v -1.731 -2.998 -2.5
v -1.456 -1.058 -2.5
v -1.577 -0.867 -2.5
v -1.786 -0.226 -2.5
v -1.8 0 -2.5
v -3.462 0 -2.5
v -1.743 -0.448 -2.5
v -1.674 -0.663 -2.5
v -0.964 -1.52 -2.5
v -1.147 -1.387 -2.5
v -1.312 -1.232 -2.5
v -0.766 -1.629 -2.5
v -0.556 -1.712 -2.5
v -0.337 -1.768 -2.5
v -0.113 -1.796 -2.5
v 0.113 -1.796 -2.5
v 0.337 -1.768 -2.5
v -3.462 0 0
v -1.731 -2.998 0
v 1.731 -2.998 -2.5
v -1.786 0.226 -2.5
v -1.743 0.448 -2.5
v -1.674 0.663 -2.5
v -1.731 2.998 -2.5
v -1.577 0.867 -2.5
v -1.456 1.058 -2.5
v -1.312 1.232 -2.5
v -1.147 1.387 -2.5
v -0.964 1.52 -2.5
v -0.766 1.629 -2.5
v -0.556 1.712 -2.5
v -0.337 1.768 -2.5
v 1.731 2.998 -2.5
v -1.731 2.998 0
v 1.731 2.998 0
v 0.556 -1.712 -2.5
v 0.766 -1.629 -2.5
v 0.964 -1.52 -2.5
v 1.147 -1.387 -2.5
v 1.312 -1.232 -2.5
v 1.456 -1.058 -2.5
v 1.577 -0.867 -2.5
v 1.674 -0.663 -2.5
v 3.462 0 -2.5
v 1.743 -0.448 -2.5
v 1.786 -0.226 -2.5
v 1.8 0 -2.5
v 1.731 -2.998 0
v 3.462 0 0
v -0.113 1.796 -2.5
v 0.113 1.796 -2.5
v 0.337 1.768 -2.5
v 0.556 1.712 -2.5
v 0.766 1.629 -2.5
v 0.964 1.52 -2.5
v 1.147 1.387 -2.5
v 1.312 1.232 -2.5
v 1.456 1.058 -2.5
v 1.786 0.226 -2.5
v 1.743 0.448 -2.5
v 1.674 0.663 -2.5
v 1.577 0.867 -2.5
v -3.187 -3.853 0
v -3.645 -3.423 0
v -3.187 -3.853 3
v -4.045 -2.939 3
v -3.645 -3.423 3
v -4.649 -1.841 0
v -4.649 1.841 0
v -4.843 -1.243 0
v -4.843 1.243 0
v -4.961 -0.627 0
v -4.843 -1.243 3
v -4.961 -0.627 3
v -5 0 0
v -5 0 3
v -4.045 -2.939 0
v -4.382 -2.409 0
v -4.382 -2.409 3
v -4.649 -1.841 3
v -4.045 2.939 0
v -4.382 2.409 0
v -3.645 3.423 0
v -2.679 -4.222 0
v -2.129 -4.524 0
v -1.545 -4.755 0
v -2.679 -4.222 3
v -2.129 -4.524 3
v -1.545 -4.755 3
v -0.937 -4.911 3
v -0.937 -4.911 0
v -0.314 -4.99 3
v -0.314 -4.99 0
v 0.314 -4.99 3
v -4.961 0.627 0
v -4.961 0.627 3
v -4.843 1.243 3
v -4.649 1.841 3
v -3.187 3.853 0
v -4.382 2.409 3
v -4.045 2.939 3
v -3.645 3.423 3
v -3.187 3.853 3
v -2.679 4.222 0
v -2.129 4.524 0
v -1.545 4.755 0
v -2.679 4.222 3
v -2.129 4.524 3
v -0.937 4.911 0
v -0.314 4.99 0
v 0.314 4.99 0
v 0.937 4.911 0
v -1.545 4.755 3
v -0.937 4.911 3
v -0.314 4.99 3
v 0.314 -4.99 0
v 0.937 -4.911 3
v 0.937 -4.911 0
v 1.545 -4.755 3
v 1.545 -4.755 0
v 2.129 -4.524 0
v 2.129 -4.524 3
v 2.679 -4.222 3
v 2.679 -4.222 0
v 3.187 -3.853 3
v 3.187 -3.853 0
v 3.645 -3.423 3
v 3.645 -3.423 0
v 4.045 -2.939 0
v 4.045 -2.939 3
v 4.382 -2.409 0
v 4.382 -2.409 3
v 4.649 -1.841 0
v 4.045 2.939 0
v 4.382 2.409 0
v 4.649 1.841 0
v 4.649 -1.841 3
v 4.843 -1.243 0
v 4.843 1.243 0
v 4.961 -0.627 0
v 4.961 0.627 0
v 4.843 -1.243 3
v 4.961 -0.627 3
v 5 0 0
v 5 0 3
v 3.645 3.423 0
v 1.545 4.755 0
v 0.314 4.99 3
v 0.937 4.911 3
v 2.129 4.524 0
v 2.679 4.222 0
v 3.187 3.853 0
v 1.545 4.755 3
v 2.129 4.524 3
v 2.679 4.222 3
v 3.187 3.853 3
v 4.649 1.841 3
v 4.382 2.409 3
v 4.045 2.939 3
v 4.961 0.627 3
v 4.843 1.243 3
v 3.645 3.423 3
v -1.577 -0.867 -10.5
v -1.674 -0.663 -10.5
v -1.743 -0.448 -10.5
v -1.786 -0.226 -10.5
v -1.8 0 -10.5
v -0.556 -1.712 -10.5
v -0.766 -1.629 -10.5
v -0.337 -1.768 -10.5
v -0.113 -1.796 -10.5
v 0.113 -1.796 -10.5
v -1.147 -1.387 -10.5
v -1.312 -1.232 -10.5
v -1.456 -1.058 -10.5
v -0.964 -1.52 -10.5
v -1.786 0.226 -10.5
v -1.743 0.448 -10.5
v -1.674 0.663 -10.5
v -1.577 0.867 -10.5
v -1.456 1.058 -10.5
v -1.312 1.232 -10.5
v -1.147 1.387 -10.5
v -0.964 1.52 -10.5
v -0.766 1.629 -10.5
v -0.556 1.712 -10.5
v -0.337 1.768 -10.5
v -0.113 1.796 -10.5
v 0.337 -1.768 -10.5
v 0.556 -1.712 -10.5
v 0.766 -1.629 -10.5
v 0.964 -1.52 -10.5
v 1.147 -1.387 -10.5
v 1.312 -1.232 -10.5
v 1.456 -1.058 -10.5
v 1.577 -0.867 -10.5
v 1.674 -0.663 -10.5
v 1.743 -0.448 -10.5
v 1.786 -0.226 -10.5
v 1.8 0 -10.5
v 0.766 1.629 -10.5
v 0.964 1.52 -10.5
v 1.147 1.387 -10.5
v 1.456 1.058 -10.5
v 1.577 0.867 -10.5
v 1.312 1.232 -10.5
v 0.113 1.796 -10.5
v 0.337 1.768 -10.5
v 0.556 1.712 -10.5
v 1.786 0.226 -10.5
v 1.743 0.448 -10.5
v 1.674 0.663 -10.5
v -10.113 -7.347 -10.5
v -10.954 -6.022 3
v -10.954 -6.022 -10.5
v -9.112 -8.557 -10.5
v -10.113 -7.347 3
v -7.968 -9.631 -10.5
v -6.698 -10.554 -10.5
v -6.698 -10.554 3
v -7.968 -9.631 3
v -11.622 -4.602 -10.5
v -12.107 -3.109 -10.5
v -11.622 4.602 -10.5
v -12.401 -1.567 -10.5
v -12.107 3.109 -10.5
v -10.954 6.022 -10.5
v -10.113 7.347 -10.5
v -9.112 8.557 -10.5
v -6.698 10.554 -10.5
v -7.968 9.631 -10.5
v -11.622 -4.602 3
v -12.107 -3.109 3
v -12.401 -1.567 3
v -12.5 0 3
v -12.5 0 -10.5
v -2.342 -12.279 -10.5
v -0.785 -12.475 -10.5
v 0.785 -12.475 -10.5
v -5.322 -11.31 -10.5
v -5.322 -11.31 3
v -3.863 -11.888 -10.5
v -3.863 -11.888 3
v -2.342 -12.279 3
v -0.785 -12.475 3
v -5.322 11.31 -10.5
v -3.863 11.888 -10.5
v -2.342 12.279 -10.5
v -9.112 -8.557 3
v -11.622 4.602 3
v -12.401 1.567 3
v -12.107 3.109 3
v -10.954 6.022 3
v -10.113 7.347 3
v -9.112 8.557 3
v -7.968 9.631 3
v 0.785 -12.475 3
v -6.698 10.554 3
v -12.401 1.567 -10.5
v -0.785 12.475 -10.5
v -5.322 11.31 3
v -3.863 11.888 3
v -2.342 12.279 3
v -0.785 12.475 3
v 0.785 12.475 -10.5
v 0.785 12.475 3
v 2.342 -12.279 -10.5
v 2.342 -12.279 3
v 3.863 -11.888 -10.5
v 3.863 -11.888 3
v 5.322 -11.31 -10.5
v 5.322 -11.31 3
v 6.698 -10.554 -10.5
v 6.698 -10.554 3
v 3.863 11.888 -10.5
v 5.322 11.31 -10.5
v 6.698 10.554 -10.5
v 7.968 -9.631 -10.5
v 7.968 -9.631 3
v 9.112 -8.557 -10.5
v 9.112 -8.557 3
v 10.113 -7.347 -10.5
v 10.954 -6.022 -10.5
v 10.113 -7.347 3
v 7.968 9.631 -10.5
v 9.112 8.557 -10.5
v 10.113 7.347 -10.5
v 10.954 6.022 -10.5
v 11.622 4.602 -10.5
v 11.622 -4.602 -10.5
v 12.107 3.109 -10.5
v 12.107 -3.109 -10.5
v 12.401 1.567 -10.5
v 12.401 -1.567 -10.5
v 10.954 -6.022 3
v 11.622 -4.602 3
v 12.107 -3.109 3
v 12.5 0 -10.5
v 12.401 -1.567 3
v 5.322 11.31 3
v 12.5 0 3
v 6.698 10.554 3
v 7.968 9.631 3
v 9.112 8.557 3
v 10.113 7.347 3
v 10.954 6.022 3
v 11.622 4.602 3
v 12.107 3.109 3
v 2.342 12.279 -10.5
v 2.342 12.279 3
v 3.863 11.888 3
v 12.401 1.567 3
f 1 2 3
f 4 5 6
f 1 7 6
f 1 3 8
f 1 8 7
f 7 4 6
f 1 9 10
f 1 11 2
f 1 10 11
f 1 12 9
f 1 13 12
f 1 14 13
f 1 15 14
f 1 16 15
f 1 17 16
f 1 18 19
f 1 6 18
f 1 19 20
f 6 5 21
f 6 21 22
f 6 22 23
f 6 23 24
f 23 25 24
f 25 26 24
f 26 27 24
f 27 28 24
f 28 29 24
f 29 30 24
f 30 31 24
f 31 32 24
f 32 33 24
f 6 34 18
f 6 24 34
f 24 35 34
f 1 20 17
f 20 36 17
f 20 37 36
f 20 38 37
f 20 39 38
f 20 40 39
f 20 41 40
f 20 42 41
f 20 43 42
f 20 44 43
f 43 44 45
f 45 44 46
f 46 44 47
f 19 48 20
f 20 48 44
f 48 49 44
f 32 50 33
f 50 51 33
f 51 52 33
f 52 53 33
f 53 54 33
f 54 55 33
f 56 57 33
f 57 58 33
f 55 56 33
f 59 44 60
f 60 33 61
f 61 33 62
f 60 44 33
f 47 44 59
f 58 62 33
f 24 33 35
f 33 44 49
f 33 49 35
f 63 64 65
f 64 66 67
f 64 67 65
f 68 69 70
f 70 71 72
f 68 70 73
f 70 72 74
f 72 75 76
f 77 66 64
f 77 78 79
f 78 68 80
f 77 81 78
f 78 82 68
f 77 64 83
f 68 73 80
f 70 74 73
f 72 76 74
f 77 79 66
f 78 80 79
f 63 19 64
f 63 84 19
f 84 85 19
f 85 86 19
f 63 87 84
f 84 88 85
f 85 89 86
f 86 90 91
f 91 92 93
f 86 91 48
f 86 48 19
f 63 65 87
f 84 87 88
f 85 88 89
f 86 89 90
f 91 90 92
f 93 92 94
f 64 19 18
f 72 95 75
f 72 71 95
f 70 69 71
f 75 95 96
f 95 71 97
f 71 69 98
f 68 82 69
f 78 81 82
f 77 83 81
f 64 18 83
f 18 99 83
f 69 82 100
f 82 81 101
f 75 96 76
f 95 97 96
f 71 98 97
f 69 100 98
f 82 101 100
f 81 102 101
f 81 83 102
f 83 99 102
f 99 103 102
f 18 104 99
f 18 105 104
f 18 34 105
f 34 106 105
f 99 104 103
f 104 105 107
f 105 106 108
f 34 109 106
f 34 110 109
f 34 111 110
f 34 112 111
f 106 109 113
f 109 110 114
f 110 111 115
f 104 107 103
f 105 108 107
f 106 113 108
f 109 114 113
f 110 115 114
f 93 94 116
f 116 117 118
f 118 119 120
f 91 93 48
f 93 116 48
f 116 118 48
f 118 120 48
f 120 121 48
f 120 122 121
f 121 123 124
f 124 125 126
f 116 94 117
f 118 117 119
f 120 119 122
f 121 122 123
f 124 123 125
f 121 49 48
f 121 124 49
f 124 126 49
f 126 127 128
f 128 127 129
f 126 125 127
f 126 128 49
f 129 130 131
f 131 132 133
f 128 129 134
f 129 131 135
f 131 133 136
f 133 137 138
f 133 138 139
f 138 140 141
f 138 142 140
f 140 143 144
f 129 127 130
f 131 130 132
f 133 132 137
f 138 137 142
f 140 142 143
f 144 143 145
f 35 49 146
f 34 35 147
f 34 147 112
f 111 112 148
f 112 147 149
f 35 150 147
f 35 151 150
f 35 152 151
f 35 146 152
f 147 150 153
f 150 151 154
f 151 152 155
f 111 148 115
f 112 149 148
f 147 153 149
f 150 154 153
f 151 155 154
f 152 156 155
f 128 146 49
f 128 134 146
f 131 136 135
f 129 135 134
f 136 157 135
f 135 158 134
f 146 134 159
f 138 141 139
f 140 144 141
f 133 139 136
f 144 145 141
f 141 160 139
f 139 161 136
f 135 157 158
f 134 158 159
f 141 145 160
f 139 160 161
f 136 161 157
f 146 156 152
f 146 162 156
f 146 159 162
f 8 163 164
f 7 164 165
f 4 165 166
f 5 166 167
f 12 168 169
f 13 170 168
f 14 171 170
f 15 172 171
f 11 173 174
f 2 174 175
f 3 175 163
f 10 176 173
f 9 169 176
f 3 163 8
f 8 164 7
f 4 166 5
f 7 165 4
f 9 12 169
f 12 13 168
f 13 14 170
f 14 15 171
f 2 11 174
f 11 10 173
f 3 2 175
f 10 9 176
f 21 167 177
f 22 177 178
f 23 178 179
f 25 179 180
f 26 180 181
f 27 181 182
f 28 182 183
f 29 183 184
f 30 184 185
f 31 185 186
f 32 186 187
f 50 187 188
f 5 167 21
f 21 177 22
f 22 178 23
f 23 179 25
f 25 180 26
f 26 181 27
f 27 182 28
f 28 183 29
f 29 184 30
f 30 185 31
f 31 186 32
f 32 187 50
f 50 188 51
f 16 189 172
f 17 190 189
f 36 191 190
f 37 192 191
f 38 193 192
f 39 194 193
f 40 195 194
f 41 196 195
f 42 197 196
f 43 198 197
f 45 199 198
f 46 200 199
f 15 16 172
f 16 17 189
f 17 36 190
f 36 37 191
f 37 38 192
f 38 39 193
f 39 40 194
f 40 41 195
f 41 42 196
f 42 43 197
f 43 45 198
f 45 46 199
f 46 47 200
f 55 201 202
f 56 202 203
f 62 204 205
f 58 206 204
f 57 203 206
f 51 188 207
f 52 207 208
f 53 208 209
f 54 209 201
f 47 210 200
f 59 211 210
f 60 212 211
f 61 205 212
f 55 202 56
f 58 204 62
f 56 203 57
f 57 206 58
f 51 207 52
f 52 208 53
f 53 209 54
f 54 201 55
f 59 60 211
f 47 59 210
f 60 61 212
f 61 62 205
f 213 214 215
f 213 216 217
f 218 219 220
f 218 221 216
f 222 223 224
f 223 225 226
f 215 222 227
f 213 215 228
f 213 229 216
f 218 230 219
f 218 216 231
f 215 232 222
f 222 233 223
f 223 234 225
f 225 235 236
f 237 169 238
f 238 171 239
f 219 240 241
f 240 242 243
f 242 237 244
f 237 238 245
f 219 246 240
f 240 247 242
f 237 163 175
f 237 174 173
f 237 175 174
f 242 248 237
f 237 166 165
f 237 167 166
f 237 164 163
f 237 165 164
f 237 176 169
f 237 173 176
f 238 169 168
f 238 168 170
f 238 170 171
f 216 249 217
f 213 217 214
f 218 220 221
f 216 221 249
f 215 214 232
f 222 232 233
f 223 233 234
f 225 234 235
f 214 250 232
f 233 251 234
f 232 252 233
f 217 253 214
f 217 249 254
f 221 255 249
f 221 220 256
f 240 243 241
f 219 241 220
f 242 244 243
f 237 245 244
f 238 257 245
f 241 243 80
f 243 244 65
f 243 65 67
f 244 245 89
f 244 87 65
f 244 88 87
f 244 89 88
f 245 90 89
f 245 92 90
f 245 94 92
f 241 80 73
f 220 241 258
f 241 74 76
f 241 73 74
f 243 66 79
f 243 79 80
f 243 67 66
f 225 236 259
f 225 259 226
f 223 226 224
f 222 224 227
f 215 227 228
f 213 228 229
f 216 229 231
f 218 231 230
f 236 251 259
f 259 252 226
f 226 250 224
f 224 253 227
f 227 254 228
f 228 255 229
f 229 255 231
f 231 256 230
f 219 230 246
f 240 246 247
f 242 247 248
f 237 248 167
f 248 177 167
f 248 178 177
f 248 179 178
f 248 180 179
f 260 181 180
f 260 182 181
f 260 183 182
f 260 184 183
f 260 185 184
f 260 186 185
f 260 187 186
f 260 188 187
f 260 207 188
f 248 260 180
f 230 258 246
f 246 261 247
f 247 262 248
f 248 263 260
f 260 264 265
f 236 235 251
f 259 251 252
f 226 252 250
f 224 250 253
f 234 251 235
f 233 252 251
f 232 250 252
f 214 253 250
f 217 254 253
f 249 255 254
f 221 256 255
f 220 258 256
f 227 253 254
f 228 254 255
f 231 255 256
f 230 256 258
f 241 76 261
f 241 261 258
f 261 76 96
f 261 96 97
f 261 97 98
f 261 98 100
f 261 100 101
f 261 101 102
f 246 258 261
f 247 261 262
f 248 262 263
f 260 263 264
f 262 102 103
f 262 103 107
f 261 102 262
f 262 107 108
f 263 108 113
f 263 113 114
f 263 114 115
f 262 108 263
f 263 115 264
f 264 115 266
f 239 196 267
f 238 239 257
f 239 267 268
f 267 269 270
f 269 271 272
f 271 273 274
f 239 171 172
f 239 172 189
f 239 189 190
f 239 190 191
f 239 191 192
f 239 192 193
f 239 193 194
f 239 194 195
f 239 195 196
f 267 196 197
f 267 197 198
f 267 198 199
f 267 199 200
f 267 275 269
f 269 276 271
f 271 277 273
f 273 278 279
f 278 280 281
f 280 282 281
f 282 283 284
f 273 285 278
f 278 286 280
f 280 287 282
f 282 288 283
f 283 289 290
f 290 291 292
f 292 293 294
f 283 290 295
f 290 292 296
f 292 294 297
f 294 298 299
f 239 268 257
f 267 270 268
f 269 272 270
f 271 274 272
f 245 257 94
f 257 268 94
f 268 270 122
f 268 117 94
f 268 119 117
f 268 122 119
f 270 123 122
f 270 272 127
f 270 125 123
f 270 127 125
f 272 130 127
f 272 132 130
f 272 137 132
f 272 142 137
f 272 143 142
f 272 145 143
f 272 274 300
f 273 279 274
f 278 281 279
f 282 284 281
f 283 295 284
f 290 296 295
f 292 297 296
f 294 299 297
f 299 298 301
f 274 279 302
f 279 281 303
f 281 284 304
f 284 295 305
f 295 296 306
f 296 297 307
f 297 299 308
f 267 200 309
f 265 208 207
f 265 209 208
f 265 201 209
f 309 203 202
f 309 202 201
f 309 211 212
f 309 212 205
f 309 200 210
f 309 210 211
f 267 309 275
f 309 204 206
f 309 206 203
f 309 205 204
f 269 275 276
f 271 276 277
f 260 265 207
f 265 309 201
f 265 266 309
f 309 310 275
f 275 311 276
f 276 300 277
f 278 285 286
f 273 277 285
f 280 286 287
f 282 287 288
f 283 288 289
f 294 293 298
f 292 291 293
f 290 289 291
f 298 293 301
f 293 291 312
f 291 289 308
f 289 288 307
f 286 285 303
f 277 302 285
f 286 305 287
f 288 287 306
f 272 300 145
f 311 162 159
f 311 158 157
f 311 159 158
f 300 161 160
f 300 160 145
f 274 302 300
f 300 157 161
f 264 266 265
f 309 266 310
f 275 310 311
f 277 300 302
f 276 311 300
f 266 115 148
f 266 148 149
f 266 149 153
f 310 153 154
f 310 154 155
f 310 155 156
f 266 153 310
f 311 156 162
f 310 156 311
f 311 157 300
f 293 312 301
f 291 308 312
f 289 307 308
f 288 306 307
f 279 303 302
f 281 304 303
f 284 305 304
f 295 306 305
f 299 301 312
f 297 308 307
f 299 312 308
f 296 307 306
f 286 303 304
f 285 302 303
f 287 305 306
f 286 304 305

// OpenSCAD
$fn = 50;

difference() {
	union() {
		translate(v = [0, 0, -10.5]) {
			cylinder(h = 13.5, r = 12.5);
		}
	}
	union() {
		translate(v = [0, 0, 0]) {
			rotate(a = [0, 0, 0]) {
				difference() {
					union() {
						translate(v = [0, 0, -2.5]) {
							linear_extrude(height = 2.5) {
								polygon(points = [[3.4619999999999997, 0.0], [1.7310000000000003, 2.9981799479017264], [-1.7309999999999992, 2.9981799479017264], [-3.4619999999999997, 4.2397272186481365e-16], [-1.7310000000000014, -2.998179947901726], [1.7309999999999977, -2.9981799479017277]]);
							}
						}
					}
					union();
				}
			}
		}
		#cylinder(h = 3, r = 5.0);
		#translate(v = [0, 0, -100.0]) {
			cylinder(h = 200, r = 1.8);
		}
	}
}
